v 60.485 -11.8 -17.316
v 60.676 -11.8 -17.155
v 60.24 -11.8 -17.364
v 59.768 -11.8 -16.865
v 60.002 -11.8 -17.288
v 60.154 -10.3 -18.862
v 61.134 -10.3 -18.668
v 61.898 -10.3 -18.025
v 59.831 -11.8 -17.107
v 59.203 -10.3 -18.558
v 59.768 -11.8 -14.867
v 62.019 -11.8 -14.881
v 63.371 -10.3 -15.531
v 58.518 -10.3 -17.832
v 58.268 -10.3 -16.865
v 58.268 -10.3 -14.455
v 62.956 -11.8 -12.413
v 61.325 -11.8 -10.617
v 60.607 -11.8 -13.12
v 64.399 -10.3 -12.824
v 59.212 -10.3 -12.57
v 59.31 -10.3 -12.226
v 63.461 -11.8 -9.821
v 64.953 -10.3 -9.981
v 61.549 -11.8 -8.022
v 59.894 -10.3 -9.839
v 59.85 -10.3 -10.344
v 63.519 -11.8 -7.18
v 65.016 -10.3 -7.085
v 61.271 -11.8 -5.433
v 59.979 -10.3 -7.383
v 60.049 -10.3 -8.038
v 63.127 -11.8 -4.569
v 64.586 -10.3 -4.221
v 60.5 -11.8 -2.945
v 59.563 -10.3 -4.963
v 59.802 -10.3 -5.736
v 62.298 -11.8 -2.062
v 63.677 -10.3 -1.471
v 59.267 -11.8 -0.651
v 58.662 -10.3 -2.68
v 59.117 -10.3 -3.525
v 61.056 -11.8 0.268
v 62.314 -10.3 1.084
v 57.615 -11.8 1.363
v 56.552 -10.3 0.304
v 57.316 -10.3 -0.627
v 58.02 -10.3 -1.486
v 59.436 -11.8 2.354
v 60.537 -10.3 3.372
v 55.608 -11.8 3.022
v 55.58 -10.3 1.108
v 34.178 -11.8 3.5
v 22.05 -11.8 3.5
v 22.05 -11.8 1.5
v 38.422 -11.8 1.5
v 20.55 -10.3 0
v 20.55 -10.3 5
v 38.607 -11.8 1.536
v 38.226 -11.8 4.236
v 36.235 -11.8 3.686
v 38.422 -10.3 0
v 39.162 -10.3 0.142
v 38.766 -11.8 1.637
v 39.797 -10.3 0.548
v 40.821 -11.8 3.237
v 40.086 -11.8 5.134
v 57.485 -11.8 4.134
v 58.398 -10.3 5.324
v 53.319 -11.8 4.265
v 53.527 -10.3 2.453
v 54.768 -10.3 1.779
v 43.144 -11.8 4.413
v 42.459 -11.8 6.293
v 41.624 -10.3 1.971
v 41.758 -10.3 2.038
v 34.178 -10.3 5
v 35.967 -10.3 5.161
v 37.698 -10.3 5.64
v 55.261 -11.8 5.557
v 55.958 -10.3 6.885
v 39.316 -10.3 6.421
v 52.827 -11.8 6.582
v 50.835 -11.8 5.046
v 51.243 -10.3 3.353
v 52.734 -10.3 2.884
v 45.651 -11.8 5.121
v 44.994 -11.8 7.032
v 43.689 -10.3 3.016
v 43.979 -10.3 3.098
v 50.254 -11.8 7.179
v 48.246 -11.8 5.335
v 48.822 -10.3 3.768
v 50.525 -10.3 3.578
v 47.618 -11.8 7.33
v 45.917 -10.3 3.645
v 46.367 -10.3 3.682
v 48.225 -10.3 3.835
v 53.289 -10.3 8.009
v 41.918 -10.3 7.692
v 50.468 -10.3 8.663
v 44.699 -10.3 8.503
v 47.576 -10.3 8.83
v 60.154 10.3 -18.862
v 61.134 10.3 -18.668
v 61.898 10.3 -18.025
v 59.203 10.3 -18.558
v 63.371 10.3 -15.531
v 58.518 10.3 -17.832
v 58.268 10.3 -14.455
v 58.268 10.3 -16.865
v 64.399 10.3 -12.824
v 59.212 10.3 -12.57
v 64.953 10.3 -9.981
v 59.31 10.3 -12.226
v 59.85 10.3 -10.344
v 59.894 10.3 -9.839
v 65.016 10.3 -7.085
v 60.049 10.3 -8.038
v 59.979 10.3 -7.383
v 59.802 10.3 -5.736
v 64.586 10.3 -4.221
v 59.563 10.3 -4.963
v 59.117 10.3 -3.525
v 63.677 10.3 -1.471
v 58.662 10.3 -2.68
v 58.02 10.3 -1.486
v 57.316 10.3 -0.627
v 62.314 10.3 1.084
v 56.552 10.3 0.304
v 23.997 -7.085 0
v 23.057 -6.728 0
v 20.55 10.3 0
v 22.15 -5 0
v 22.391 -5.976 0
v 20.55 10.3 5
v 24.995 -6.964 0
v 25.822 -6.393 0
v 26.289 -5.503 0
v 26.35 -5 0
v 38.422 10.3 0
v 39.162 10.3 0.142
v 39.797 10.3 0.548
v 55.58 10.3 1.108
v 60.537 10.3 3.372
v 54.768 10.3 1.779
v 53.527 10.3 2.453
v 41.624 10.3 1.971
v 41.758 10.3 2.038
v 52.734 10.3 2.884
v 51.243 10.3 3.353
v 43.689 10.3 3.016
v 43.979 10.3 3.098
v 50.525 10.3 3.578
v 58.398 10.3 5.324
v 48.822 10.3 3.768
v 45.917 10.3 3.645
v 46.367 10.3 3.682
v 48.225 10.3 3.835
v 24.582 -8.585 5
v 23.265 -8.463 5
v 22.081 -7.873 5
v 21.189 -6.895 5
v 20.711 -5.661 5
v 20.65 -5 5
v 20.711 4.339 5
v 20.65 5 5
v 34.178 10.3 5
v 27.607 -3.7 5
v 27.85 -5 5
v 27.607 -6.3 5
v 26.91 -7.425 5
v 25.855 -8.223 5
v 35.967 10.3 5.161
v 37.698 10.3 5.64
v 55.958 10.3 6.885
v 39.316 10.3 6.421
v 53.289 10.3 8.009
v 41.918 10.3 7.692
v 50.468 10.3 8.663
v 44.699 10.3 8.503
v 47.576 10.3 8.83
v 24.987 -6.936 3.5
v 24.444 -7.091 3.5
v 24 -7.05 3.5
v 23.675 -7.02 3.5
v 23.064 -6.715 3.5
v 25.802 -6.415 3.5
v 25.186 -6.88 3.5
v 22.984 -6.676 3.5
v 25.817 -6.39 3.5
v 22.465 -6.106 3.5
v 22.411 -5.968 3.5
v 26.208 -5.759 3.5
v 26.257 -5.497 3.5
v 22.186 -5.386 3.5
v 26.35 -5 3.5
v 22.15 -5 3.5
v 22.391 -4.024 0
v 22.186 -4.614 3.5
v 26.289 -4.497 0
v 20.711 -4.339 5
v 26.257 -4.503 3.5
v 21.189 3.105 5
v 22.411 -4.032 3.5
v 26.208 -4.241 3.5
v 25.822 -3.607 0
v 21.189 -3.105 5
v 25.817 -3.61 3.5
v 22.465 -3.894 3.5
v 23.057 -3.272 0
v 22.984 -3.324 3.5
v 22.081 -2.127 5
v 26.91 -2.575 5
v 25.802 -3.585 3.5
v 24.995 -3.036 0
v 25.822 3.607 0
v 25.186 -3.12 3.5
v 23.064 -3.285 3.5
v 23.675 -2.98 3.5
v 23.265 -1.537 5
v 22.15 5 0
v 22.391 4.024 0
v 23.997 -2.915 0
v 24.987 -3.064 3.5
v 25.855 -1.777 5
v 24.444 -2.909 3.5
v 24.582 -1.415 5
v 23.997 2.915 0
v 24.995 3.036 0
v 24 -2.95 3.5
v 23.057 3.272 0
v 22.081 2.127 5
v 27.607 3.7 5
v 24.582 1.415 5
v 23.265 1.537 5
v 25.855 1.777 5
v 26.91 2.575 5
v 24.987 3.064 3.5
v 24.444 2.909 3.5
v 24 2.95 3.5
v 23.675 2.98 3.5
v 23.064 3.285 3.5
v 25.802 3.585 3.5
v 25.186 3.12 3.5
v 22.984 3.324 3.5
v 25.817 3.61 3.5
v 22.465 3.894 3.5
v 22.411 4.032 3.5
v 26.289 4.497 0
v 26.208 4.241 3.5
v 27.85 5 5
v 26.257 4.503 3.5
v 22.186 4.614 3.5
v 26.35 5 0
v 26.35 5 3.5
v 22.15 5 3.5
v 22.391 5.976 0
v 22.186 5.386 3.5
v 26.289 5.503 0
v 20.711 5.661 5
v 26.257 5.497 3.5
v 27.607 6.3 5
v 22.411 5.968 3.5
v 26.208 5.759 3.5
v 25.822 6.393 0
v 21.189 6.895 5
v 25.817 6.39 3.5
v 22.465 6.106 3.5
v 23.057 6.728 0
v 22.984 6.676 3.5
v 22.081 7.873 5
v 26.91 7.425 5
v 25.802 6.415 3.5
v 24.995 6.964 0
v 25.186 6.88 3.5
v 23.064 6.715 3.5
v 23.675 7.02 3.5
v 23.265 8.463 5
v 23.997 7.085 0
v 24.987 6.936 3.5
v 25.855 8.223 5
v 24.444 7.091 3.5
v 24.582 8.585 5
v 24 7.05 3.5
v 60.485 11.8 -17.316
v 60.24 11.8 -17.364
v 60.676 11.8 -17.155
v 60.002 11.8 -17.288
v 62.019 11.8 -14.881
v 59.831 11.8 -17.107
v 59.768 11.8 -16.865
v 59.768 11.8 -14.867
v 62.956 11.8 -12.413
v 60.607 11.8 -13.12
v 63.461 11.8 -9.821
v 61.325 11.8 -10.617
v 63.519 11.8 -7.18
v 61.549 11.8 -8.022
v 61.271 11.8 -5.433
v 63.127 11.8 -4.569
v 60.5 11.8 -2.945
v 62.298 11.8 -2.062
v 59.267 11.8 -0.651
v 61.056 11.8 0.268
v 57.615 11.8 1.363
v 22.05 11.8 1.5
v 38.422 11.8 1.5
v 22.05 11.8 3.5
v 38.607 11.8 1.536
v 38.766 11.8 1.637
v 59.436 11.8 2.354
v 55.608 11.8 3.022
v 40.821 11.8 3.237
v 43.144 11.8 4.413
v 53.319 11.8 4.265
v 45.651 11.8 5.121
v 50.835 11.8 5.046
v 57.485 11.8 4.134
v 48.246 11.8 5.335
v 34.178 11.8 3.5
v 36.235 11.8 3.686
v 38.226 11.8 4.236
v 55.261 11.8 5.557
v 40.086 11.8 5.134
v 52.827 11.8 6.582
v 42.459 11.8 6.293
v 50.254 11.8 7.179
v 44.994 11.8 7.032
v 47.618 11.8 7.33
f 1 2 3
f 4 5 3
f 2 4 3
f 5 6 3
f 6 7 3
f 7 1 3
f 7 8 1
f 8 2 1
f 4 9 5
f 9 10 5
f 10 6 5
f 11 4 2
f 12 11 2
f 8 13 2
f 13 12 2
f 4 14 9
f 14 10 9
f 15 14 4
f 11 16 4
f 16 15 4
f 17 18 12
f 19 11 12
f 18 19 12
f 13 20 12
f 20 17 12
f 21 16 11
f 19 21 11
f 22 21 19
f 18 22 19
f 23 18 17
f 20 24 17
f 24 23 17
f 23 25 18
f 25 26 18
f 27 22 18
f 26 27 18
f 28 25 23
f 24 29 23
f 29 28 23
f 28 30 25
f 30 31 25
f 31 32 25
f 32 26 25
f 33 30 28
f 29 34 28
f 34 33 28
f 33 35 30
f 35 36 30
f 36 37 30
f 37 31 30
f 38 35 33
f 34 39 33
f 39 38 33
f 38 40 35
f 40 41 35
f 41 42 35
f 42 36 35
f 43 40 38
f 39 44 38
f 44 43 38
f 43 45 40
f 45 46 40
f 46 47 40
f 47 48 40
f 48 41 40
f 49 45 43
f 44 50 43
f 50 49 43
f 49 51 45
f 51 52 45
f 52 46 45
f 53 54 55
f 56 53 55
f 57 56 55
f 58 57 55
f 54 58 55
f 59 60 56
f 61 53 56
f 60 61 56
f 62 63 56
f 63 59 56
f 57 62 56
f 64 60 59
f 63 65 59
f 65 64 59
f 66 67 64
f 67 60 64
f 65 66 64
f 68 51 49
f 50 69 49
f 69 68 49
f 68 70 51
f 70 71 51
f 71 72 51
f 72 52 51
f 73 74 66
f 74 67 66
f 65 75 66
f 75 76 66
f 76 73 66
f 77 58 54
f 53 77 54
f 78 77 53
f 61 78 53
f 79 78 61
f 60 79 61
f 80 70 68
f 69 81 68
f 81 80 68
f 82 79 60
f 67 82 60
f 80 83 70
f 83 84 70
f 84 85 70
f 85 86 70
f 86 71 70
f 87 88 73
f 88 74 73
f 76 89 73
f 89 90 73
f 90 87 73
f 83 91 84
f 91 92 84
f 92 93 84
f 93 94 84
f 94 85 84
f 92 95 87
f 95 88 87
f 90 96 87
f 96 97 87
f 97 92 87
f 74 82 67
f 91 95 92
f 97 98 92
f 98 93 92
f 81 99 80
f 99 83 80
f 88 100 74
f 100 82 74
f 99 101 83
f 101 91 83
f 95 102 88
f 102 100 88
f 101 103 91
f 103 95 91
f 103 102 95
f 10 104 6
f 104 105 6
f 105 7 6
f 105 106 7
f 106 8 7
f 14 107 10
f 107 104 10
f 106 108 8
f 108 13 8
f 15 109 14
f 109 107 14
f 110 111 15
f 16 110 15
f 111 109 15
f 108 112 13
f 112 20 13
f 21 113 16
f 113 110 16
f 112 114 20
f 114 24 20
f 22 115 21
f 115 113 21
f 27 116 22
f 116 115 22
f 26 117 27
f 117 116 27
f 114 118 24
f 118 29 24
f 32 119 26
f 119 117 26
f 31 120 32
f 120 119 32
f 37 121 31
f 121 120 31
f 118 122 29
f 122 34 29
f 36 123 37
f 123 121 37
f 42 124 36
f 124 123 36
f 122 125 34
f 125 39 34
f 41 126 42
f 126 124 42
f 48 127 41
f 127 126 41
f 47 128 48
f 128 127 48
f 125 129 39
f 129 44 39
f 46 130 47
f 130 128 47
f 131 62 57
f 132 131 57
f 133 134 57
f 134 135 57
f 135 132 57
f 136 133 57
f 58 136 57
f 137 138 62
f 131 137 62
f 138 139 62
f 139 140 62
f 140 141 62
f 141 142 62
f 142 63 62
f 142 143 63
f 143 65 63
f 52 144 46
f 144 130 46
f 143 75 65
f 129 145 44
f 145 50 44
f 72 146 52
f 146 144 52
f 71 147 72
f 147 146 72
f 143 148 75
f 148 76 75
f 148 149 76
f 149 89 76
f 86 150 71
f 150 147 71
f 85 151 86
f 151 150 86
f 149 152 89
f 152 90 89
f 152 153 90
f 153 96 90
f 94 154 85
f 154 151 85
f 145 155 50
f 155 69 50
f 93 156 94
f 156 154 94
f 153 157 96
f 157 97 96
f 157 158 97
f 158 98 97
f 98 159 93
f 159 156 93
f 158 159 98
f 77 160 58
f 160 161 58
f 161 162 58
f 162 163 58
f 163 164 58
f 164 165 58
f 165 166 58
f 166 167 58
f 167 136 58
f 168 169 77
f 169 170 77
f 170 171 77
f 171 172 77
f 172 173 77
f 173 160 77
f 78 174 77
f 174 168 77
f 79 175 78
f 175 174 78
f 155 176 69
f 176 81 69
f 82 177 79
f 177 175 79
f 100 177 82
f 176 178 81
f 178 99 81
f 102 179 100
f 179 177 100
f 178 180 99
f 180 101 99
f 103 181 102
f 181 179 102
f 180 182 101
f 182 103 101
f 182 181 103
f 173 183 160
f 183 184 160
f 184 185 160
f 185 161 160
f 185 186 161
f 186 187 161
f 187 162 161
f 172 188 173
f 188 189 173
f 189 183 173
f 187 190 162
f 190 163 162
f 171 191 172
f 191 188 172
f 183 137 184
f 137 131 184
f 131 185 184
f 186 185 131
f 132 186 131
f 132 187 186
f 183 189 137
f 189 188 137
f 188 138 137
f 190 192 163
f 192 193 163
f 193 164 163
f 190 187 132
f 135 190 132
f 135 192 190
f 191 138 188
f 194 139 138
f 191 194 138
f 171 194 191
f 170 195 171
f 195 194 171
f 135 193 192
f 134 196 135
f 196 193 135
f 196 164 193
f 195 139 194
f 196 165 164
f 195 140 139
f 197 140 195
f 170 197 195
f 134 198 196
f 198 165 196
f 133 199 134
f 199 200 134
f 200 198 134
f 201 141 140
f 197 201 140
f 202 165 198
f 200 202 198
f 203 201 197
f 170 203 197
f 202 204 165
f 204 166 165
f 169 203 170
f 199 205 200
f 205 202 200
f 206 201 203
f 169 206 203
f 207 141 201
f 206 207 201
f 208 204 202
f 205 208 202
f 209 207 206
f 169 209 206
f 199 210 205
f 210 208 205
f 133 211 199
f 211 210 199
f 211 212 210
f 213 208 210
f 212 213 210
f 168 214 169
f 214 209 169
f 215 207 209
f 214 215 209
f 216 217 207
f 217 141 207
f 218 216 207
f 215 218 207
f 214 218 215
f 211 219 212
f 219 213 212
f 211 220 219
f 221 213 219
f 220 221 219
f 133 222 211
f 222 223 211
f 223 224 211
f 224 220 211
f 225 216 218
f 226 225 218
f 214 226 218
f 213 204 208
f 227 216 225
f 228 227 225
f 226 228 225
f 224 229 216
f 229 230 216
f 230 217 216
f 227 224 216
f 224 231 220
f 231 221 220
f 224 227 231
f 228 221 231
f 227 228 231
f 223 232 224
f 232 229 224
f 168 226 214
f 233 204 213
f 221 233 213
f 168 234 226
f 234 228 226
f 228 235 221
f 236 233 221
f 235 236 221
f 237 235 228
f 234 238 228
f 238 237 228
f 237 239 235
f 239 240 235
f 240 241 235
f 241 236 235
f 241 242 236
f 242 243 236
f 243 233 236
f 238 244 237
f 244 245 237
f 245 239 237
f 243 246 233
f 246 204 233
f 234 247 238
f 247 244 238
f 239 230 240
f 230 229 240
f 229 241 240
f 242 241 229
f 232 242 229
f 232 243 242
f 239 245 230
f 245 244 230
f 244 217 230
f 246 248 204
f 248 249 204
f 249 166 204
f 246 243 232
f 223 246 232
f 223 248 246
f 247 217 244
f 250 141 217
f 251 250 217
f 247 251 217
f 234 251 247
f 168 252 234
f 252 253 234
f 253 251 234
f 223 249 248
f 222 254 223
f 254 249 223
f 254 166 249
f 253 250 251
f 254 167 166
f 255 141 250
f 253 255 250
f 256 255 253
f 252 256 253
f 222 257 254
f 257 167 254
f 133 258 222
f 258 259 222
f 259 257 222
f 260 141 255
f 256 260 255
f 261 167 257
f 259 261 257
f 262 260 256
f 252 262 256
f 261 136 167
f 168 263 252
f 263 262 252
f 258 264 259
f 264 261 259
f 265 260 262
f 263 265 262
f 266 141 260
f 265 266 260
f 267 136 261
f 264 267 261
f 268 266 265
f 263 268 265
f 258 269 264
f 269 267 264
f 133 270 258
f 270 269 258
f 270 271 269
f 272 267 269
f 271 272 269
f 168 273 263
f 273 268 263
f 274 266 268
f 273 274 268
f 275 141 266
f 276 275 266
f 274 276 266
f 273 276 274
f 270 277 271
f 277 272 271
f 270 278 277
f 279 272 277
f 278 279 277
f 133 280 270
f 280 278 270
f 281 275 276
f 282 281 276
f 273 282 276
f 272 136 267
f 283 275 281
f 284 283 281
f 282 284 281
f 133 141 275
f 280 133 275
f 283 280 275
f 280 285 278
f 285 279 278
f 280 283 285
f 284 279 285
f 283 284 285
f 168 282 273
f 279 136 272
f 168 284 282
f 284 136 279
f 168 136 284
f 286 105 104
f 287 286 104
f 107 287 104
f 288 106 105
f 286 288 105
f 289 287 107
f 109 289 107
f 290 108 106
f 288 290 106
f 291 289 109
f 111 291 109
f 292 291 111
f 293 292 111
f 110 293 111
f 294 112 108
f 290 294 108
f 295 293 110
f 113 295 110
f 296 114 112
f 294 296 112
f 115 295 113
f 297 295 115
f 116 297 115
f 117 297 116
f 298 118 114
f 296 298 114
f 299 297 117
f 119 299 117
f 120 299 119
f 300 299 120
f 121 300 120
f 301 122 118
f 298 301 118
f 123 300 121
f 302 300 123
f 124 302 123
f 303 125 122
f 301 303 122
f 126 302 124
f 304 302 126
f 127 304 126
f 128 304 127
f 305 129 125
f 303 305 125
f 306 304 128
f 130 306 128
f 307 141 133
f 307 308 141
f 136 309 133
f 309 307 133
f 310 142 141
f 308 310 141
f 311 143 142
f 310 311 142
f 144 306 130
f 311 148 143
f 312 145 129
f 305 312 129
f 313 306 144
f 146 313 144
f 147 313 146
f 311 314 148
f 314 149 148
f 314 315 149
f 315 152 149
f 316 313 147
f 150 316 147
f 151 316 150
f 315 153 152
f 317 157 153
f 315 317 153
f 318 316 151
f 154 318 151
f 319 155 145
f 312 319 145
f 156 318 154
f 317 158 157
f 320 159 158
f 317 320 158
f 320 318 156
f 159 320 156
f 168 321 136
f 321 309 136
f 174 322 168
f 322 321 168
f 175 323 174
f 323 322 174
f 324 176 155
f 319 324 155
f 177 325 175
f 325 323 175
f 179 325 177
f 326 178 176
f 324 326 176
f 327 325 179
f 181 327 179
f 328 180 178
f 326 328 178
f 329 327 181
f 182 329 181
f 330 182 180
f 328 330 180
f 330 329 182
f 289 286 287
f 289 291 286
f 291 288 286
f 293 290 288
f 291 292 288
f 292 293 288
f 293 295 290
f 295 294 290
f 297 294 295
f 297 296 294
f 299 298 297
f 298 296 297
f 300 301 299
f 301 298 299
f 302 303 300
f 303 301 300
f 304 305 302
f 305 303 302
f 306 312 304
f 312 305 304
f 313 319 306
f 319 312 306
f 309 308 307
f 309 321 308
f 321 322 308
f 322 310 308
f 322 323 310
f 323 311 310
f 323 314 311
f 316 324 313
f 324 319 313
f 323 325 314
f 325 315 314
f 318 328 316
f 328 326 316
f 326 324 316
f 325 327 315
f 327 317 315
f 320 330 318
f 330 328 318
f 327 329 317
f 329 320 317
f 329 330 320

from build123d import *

# Parameters (mm, degrees)
CROQUIS1_W                          = 15.5
CROQUIS1_H                          = 23.6
CROQUIS1_R                          = 2.1
SALIENTE_EXTRUIR1_DEPTH             = 5
SALIENTE_EXTRUIR2_REACH             = 40.26
SALIENTE_EXTRUIR2_DIRECTION_2_REACH = 40.26
REDONDEO1_R                         = 2
REDONDEO2_R                         = 10
CHAFL_N1_SIZE                       = 1.5
CHAFL_N2_SIZE                       = 1.5


with BuildPart() as part:
    # Croquis1 → Saliente-Extruir1 (new body)
    with BuildSketch(Plane.XY):
        with Locations((28.3, 0)):
            Rectangle(CROQUIS1_W, CROQUIS1_H)
        with Locations((24.250000128, -5)):
            Circle(CROQUIS1_R, mode=Mode.SUBTRACT)
        with Locations((24.250000128, 5)):
            Circle(CROQUIS1_R, mode=Mode.SUBTRACT)
    extrude(amount=SALIENTE_EXTRUIR1_DEPTH)

    # Saliente-Extruir2: up to this face of the body (flat: up to its plane)
    saliente_extruir2_end = Plane(part.part.faces().sort_by_distance((28.3, -11.8, 2.5))[0])
    # Croquis2 → Saliente-Extruir2 (add, up to the picked face)
    with BuildSketch(Plane(origin=(0, 0, 0), x_dir=(1, 0, 0), z_dir=(0, 1, 0)), mode=Mode.PRIVATE) as saliente_extruir2_sk1:
        with BuildLine():
            ThreePointArc((39.254957851, 0), (55.312581622, -1.388967795), (58.268482288, 14.455247679))
            Line((58.268482288, 14.455247679), (58.268482288, 21.749894336))
            ThreePointArc((58.268482288, 21.749894336), (61.427658114, -2.326136764), (37.292908876, -5))
            Line((37.292908876, -5), (36.05, -5))
            Line((36.05, -5), (36.05, 0))
            Line((36.05, 0), (39.254957851, 0))
        make_face()
    saliente_extruir2_tool1 = split(extrude(saliente_extruir2_sk1.sketch, amount=-SALIENTE_EXTRUIR2_REACH, mode=Mode.PRIVATE), bisect_by=saliente_extruir2_end, keep=Keep.BOTH, mode=Mode.PRIVATE)
    add(saliente_extruir2_tool1.solids().sort_by(Axis((55.567672, 0, 1.724497), (0, -1, 0)))[0])

    # Saliente-Extruir2 direction 2: up to this face of the body (flat: up to its plane)
    saliente_extruir2_direction_2_end = Plane(part.part.faces().sort_by_distance((28.3, 11.8, 2.5))[0])
    # Croquis2 → Saliente-Extruir2 direction 2 (add, up to the picked face)
    with BuildSketch(Plane(origin=(0, 0, 0), x_dir=(1, 0, 0), z_dir=(0, 1, 0)), mode=Mode.PRIVATE) as saliente_extruir2_direction_2_sk1:
        with BuildLine():
            ThreePointArc((39.254957851, 0), (55.312581622, -1.388967795), (58.268482288, 14.455247679))
            Line((58.268482288, 14.455247679), (58.268482288, 21.749894336))
            ThreePointArc((58.268482288, 21.749894336), (61.427658114, -2.326136764), (37.292908876, -5))
            Line((37.292908876, -5), (36.05, -5))
            Line((36.05, -5), (36.05, 0))
            Line((36.05, 0), (39.254957851, 0))
        make_face()
    saliente_extruir2_direction_2_tool1 = split(extrude(saliente_extruir2_direction_2_sk1.sketch, amount=SALIENTE_EXTRUIR2_DIRECTION_2_REACH, mode=Mode.PRIVATE), bisect_by=saliente_extruir2_direction_2_end, keep=Keep.BOTH, mode=Mode.PRIVATE)
    add(saliente_extruir2_direction_2_tool1.solids().sort_by(Axis((55.567672, 0, 1.724497), (0, 1, 0)))[0])

    # Redondeo1
    redondeo1_edges = [part.edges().sort_by_distance(p)[0] for p in [
        (58.268482288, 0, -21.749894336),
        (39.254957851, 0, 0),
    ]]
    fillet(redondeo1_edges, radius=REDONDEO1_R)

    # Redondeo2
    redondeo2_edges = [part.edges().sort_by_distance(p)[0] for p in [
        (37.292908876, 0, 5),
    ]]
    fillet(redondeo2_edges, radius=REDONDEO2_R)

    # Chaflán1
    chafl_n1_edges = [part.edges().sort_by_distance(p)[0] for p in [
        (58.268482288, 11.8, -15.660048739),
        (55.615767212, -11.8, 1.150684381),
        (58.268482288, -11.8, -15.660048739),
        (55.615767212, 11.8, 1.150684381),
        (29.486018705, 11.8, 0),
        (60.537424453, 11.8, 3.37157131),
        (59.659492117, 11.8, -18.769877613),
        (39.162329274, 11.8, 0.142052757),
        (60.537424453, -11.8, 3.37157131),
        (59.659492117, -11.8, -18.769877613),
        (39.162329274, -11.8, 0.142052757),
        (27.363871837, 11.8, 5),
        (36.843099013, 11.8, 5.361749074),
        (36.843099013, -11.8, 5.361749074),
        (29.486018705, -11.8, 0),
        (27.363871837, -11.8, 5),
        (20.55, 11.8, 2.5),
        (20.55, -11.8, 2.5),
    ]]
    chamfer(chafl_n1_edges, length=CHAFL_N1_SIZE)

    # Chaflán2
    chafl_n2_edges = [part.edges().sort_by_distance(p)[0] for p in [
        (22.150000128, -5, 5),
        (22.150000128, 5, 5),
    ]]
    chamfer(chafl_n2_edges, length=CHAFL_N2_SIZE)


solid = part.part
